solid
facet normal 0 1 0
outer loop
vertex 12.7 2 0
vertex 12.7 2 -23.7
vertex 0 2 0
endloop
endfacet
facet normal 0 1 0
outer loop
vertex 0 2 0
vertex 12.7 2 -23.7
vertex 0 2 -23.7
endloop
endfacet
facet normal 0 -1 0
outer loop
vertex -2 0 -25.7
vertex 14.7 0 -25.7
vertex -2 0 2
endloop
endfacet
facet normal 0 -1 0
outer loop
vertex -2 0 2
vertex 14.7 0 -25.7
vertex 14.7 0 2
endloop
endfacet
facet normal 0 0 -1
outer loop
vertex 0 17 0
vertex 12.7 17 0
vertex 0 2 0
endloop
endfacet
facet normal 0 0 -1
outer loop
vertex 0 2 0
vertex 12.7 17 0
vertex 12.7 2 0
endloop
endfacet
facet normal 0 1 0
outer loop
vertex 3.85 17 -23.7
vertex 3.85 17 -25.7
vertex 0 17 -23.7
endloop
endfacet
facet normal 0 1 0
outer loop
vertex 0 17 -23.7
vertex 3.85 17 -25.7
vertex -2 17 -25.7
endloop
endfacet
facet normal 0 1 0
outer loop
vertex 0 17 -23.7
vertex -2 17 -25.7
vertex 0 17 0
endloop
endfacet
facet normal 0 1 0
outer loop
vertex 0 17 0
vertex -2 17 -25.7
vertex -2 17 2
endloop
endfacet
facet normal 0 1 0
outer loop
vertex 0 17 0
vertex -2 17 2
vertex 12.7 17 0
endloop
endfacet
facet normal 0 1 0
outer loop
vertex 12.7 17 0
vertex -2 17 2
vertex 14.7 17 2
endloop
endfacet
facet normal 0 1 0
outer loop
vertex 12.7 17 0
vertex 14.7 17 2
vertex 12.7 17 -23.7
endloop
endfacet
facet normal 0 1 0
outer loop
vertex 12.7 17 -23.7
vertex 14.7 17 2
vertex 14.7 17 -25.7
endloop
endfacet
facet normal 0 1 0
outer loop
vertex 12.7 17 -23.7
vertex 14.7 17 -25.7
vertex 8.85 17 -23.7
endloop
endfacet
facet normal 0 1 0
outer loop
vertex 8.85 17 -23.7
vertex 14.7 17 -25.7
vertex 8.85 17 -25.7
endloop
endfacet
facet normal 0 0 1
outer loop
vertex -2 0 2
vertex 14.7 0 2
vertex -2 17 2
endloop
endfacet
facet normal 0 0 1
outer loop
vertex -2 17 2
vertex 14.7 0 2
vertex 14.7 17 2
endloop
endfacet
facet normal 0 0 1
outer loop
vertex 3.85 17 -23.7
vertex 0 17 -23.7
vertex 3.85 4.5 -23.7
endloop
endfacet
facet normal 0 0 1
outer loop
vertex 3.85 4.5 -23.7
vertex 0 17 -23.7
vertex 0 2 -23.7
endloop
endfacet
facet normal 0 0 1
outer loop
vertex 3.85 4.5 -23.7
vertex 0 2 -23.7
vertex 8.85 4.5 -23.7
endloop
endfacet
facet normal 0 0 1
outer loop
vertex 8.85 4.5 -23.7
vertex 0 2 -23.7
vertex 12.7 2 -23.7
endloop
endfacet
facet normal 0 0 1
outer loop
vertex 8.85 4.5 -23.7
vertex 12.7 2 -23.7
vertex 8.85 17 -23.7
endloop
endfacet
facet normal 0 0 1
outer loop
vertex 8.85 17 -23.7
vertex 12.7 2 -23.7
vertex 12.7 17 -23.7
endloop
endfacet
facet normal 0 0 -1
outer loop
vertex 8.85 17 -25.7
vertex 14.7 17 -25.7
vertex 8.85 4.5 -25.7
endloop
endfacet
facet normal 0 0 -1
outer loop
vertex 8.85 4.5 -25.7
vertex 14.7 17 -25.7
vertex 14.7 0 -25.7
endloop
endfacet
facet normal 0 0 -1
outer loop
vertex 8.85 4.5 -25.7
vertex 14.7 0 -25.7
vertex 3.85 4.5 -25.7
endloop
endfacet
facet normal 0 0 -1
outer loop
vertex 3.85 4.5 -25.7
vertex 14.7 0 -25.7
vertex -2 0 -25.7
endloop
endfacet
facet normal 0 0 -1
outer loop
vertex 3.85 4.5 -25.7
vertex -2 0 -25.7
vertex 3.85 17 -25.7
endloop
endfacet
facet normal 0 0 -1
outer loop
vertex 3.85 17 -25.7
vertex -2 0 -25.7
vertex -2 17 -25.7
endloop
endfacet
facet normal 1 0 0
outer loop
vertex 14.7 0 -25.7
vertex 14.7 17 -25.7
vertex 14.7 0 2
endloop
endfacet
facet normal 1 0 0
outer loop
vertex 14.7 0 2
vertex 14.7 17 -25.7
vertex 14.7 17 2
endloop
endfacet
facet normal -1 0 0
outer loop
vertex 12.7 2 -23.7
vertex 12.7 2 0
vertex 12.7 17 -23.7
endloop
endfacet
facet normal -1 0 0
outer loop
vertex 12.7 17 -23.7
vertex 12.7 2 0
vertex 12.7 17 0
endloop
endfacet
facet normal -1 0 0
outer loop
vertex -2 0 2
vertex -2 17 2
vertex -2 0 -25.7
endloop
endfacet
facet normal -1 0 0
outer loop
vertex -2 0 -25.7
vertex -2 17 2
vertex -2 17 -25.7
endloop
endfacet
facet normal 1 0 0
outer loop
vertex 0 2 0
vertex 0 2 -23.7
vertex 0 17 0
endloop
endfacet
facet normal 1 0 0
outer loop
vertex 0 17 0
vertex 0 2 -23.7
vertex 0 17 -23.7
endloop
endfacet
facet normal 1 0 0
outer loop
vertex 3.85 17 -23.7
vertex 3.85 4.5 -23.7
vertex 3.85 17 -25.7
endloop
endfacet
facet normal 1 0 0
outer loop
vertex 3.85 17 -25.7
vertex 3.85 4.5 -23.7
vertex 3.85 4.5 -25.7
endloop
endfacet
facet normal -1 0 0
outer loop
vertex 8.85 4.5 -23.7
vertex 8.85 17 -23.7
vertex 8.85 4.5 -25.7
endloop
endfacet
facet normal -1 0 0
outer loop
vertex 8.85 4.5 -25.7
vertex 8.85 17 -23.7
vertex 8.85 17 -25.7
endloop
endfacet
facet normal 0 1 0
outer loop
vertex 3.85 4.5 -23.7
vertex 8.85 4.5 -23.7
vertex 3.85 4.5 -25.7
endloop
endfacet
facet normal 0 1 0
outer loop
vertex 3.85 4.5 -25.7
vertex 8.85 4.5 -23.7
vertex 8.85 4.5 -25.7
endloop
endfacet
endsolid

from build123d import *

# Parameters (mm, degrees)
SKETCH1_W           = 12.7
SKETCH1_H           = 23.7
BOSS_EXTRUDE1_DEPTH = 2
SKETCH2_W           = 12.7
SKETCH2_H           = 17
BOSS_EXTRUDE2_DEPTH = 2
SKETCH3_W           = 12.7
SKETCH3_H           = 17
BOSS_EXTRUDE3_DEPTH = 2
SKETCH4_W           = 27.7
SKETCH4_H           = 17
BOSS_EXTRUDE4_DEPTH = 2
SKETCH5_W           = 27.7
SKETCH5_H           = 17
BOSS_EXTRUDE5_DEPTH = 2
CUT_EXTRUDE2_REACH  = 36.141
SKETCH7_W           = 5
SKETCH7_H           = 12.5


with BuildPart() as part:
    # Sketch1 → Boss-Extrude1 (new body)
    with BuildSketch(Plane(origin=(0, 0, 0), x_dir=(1, 0, 0), z_dir=(0, 1, 0))):
        with Locations((6.35, 11.85)):
            Rectangle(SKETCH1_W, SKETCH1_H)
    extrude(amount=BOSS_EXTRUDE1_DEPTH)

    # Sketch2 → Boss-Extrude2 (add)
    with BuildSketch(Plane.XY):
        with Locations((6.35, 8.5)):
            Rectangle(SKETCH2_W, SKETCH2_H)
    extrude(amount=BOSS_EXTRUDE2_DEPTH)

    # Sketch3 → Boss-Extrude3 (add)
    with BuildSketch(Plane(origin=(0, 0, -23.7), x_dir=(-1, 0, 0), z_dir=(0, 0, -1))):
        with Locations((-6.35, 8.5)):
            Rectangle(SKETCH3_W, SKETCH3_H)
    extrude(amount=BOSS_EXTRUDE3_DEPTH)

    # Sketch4 → Boss-Extrude4 (add)
    with BuildSketch(Plane(origin=(12.7, 0, 0), x_dir=(0, 0, -1), z_dir=(1, 0, 0))):
        with Locations((11.85, 8.5)):
            Rectangle(SKETCH4_W, SKETCH4_H)
    extrude(amount=BOSS_EXTRUDE4_DEPTH)

    # Sketch5 → Boss-Extrude5 (add)
    with BuildSketch(Plane.ZY):
        with Locations((-11.85, 8.5)):
            Rectangle(SKETCH5_W, SKETCH5_H)
    extrude(amount=BOSS_EXTRUDE5_DEPTH)

    # Sketch7 → Cut-Extrude2 (cut, up to next)
    with BuildSketch(Plane.XY.offset(-23.7), mode=Mode.PRIVATE) as cut_extrude2_sk1:
        with Locations((6.35, 10.75)):
            Rectangle(SKETCH7_W, SKETCH7_H)
    cut_extrude2_tool1 = extrude(cut_extrude2_sk1.sketch, amount=-CUT_EXTRUDE2_REACH, mode=Mode.PRIVATE) & part.part
    add(cut_extrude2_tool1.solids().sort_by_distance((6.35, 10.75, -23.7))[0], mode=Mode.SUBTRACT)


solid = part.part
